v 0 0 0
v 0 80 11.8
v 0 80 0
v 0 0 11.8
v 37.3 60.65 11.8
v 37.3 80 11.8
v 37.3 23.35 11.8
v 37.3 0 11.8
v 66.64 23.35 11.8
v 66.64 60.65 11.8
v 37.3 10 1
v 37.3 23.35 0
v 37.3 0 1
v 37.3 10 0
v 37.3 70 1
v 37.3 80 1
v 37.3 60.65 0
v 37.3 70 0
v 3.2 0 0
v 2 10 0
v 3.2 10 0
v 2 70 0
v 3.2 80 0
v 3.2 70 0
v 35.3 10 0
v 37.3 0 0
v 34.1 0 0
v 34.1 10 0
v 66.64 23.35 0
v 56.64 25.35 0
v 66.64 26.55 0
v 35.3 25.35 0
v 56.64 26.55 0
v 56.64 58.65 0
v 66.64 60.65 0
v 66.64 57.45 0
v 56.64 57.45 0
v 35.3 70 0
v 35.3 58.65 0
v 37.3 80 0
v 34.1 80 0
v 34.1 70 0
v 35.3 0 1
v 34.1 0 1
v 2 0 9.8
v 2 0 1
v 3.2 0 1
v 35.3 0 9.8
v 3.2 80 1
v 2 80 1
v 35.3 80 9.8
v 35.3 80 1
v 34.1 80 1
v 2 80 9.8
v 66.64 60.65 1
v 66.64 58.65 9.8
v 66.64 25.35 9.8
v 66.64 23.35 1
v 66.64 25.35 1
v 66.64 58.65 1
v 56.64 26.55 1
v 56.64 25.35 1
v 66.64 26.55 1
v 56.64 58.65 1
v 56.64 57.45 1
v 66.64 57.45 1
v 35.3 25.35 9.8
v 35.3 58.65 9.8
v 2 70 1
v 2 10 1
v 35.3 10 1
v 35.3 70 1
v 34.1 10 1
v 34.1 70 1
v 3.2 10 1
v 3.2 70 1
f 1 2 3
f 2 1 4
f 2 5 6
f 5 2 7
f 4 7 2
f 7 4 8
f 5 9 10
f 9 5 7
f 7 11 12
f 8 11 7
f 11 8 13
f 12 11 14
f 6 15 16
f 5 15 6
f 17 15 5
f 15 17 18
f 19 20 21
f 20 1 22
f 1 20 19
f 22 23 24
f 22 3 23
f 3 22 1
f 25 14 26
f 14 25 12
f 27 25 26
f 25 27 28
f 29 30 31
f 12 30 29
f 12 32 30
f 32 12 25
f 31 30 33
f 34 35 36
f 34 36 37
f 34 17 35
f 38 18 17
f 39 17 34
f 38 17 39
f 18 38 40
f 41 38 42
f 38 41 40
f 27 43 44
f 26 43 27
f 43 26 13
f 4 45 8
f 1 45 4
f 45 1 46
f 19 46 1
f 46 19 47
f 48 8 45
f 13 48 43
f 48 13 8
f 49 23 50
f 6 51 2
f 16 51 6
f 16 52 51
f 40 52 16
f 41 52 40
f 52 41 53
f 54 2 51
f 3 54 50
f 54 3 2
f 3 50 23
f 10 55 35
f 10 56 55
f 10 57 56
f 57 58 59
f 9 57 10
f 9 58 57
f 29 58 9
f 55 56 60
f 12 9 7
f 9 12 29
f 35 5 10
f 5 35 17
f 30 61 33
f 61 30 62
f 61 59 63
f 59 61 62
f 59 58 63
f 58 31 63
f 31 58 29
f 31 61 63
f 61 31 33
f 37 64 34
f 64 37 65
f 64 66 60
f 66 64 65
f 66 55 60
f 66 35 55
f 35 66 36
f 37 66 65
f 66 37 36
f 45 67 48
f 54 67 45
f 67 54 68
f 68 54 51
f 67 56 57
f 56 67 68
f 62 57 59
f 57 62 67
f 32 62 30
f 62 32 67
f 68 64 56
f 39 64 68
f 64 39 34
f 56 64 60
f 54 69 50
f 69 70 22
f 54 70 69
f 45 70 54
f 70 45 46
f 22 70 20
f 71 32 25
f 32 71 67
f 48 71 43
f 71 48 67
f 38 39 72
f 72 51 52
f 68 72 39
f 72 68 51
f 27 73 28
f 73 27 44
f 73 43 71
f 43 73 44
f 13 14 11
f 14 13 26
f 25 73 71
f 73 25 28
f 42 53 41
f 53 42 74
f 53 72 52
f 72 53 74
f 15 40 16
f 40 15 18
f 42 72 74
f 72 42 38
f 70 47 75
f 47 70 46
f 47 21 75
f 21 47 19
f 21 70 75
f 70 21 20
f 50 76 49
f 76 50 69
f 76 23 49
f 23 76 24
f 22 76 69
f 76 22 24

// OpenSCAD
$fa = 1;
$fs = 0.2;

depth = 9.8;
width = 33.3;
length = 40;

thickness = 2;

tab_thickness = 1;
tab_depth = 1.2;
blank = 40-10;

difference() {
    union() {
        cube([width + 2*thickness, length*2, depth+thickness]);
        
        translate([width/1.25, length - width/2, 0])
        cube([length, width + 2*thickness, depth + thickness]);
        }
    
    translate([width/1.25, length - width/2, 0])
    translate([0, thickness, 0]) {
        cube([length, width, depth]);  
    }

    translate(v = [thickness, 0, 0]) 
    cube([width, length*2, depth]);
}

translate([width/1.25, length - width/2, 0]) {
    translate([blank, 0, 0])
    cube([length-blank, thickness+tab_depth, tab_thickness]);

    translate([blank, 0, 0])
    translate([0, (width+2*thickness) - (thickness+tab_depth), 0])
    cube([length-blank, thickness+tab_depth, tab_thickness]);
}

cube([thickness+tab_depth, length-blank, tab_thickness]);
translate(v = [0, length+blank, 0]) 
cube([thickness+tab_depth, length-blank, tab_thickness]);

translate(v = [thickness + width - tab_depth, 0, 0]) {
    cube([thickness+tab_depth, length-blank, tab_thickness]);
    translate(v = [0, length+blank, 0]) 
    cube([thickness+tab_depth, length-blank, tab_thickness]);
} 
